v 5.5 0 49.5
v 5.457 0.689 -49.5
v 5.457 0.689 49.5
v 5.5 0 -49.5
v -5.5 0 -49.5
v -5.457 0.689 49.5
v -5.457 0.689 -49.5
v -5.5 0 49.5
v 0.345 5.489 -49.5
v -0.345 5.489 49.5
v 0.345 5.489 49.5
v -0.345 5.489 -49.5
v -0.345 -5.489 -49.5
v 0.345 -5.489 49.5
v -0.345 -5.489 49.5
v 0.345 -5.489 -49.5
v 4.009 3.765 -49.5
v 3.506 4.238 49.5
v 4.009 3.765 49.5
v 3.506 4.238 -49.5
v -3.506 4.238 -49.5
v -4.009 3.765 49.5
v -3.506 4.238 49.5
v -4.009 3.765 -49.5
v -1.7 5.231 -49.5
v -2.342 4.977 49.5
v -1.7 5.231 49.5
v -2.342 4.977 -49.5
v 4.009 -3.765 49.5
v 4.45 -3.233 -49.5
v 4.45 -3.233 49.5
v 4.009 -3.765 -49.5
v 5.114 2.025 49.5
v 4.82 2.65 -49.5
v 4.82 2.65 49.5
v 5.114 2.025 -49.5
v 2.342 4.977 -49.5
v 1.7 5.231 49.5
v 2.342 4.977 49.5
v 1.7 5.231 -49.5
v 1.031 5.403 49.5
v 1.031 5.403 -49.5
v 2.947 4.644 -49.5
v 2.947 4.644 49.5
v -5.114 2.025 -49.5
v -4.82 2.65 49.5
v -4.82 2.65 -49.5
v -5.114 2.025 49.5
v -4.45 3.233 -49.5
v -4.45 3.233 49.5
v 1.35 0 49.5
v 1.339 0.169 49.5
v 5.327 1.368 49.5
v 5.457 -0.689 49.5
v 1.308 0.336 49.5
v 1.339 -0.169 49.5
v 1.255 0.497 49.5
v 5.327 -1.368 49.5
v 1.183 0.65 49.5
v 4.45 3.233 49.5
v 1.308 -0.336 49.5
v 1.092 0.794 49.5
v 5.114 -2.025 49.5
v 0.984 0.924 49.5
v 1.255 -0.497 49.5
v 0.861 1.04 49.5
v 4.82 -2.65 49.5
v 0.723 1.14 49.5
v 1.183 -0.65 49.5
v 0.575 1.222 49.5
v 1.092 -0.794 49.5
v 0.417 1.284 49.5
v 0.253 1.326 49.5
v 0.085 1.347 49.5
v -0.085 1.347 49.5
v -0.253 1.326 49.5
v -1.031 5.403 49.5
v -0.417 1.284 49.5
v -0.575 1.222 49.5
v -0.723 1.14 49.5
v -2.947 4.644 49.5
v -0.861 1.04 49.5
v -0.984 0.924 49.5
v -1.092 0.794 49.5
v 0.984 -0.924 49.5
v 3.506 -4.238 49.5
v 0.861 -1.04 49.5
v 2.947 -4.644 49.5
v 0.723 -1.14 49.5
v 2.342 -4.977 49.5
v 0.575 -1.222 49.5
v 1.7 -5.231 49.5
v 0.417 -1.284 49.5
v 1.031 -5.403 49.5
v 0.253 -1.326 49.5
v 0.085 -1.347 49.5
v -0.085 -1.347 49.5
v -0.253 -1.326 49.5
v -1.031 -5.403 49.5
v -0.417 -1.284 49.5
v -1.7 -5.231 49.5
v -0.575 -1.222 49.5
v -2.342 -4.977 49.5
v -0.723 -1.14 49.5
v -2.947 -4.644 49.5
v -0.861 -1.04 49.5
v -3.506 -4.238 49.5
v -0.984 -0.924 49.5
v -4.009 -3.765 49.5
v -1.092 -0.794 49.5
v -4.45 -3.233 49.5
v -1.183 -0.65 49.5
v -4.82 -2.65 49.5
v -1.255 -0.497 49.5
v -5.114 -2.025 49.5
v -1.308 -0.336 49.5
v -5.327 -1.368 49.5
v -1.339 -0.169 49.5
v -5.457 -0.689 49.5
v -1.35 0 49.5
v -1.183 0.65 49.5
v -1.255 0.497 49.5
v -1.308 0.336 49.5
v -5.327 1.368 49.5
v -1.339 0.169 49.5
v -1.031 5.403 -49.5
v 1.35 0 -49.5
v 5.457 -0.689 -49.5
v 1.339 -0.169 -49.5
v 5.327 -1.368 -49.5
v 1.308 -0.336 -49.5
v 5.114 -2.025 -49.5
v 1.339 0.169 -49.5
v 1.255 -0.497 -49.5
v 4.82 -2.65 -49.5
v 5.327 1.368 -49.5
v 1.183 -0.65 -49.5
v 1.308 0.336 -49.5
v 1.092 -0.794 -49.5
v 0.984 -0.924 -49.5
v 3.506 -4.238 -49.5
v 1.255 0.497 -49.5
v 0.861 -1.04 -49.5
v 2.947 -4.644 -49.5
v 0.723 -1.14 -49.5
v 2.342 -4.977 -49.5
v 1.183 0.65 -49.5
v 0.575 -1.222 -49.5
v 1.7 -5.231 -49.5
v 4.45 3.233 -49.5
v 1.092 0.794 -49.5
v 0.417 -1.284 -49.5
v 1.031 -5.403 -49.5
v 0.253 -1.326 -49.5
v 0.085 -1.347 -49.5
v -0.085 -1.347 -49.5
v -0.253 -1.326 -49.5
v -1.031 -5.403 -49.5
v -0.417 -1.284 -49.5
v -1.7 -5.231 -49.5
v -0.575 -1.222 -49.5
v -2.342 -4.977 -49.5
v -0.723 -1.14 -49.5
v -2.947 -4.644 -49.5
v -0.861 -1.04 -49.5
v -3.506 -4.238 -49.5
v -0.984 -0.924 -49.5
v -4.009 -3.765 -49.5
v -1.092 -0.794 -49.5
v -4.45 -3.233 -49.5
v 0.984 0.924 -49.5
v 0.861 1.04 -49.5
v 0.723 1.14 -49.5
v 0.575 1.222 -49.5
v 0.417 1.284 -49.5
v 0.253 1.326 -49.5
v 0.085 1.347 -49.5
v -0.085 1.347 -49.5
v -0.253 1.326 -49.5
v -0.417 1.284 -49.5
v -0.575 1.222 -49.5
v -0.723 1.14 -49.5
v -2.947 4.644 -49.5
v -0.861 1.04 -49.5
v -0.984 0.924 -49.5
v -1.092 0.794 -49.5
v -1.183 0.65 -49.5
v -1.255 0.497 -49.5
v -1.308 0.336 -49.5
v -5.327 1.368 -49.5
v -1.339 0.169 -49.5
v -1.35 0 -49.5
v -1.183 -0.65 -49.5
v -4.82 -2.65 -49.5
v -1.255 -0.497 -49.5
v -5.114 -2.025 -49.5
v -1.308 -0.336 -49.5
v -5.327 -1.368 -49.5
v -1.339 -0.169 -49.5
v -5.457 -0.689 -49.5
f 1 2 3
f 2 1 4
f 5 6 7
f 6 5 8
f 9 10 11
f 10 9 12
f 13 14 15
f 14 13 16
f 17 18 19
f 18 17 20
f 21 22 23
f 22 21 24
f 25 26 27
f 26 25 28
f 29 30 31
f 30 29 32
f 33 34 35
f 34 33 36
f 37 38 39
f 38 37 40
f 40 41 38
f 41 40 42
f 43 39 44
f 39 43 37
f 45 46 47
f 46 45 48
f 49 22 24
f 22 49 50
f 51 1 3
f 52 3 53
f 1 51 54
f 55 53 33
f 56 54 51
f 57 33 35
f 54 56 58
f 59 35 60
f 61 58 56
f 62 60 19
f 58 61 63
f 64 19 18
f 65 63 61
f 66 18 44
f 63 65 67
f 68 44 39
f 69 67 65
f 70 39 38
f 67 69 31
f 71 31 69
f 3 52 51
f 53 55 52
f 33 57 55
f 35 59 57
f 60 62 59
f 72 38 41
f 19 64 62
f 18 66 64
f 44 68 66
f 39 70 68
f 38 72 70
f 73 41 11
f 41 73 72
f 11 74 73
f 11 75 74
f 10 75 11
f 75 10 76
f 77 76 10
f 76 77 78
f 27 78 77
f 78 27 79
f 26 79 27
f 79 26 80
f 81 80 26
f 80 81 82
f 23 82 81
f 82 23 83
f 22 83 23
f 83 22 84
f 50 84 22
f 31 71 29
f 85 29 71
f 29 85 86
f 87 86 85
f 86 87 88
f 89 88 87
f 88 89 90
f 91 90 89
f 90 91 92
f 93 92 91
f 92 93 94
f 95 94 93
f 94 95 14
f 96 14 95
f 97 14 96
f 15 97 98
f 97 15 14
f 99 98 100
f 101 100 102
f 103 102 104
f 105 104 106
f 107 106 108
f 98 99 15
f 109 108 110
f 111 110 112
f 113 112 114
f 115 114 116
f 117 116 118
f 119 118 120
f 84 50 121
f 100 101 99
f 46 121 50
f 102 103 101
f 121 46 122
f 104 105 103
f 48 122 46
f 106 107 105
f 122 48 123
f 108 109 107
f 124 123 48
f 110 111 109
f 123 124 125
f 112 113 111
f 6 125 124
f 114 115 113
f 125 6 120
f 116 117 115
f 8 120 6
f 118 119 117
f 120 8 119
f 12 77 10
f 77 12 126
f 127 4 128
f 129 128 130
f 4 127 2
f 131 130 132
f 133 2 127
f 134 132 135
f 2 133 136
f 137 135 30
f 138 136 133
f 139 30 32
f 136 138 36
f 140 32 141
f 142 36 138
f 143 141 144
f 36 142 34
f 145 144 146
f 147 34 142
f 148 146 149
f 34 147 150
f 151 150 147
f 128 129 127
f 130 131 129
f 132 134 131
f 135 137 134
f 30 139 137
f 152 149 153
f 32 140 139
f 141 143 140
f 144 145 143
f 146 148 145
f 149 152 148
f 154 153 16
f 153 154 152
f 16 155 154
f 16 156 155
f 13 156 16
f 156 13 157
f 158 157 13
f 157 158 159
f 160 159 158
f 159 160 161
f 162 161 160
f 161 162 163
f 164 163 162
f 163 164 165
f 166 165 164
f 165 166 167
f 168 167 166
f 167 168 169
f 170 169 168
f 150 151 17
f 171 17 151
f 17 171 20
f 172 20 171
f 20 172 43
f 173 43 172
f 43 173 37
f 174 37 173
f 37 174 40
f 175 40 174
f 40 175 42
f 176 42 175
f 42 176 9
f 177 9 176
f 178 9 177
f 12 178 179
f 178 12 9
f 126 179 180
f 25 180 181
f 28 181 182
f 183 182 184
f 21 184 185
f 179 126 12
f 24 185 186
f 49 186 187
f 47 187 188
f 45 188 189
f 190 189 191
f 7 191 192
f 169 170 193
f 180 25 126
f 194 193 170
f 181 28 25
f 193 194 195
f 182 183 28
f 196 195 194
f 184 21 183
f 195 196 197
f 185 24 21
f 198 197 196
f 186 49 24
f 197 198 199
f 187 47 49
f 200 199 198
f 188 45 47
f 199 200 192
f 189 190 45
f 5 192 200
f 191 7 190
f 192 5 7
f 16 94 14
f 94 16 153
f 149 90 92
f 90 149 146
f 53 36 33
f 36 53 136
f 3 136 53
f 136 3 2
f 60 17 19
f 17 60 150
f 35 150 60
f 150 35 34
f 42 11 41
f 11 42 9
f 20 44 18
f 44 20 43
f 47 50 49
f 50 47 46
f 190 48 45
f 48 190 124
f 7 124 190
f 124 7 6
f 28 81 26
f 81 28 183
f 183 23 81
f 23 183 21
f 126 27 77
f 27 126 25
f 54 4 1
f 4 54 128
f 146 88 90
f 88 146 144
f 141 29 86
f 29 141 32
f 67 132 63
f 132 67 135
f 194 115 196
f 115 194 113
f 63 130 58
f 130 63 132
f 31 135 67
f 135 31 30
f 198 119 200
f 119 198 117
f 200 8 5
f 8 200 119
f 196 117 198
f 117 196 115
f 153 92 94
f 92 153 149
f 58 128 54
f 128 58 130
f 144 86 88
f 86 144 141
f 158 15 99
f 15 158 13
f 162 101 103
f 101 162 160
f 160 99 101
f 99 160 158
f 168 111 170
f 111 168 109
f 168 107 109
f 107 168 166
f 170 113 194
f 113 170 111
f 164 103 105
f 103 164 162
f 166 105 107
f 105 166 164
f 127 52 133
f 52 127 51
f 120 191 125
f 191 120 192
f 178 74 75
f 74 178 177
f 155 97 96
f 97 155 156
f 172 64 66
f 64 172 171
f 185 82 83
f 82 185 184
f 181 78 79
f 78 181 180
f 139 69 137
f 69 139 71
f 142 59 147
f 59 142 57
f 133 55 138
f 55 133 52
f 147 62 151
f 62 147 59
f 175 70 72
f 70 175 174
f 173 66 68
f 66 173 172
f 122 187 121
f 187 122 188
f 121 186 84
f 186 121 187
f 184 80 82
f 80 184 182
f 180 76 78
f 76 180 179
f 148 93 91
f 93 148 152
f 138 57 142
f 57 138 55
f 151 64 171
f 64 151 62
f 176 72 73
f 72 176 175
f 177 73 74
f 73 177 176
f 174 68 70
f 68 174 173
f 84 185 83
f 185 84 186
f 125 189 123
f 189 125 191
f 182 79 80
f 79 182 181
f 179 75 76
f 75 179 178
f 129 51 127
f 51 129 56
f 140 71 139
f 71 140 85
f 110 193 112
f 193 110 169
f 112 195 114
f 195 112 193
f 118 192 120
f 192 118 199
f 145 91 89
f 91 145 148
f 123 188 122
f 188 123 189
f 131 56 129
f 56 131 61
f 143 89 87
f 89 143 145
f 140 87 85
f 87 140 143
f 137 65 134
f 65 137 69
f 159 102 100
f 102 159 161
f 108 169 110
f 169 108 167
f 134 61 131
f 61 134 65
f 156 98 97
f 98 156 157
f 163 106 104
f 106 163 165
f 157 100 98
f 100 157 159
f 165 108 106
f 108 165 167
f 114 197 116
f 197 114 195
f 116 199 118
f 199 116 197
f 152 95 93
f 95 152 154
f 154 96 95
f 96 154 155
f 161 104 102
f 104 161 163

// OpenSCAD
$fn = 50;


difference() {
	union() {
		translate(v = [0, 0, -49.5000000000]) {
			cylinder(h = 99, r = 5.5000000000);
		}
	}
	union() {
		translate(v = [0, 0, -100.0000000000]) {
			cylinder(h = 200, r = 1.3500000000);
		}
	}
}
